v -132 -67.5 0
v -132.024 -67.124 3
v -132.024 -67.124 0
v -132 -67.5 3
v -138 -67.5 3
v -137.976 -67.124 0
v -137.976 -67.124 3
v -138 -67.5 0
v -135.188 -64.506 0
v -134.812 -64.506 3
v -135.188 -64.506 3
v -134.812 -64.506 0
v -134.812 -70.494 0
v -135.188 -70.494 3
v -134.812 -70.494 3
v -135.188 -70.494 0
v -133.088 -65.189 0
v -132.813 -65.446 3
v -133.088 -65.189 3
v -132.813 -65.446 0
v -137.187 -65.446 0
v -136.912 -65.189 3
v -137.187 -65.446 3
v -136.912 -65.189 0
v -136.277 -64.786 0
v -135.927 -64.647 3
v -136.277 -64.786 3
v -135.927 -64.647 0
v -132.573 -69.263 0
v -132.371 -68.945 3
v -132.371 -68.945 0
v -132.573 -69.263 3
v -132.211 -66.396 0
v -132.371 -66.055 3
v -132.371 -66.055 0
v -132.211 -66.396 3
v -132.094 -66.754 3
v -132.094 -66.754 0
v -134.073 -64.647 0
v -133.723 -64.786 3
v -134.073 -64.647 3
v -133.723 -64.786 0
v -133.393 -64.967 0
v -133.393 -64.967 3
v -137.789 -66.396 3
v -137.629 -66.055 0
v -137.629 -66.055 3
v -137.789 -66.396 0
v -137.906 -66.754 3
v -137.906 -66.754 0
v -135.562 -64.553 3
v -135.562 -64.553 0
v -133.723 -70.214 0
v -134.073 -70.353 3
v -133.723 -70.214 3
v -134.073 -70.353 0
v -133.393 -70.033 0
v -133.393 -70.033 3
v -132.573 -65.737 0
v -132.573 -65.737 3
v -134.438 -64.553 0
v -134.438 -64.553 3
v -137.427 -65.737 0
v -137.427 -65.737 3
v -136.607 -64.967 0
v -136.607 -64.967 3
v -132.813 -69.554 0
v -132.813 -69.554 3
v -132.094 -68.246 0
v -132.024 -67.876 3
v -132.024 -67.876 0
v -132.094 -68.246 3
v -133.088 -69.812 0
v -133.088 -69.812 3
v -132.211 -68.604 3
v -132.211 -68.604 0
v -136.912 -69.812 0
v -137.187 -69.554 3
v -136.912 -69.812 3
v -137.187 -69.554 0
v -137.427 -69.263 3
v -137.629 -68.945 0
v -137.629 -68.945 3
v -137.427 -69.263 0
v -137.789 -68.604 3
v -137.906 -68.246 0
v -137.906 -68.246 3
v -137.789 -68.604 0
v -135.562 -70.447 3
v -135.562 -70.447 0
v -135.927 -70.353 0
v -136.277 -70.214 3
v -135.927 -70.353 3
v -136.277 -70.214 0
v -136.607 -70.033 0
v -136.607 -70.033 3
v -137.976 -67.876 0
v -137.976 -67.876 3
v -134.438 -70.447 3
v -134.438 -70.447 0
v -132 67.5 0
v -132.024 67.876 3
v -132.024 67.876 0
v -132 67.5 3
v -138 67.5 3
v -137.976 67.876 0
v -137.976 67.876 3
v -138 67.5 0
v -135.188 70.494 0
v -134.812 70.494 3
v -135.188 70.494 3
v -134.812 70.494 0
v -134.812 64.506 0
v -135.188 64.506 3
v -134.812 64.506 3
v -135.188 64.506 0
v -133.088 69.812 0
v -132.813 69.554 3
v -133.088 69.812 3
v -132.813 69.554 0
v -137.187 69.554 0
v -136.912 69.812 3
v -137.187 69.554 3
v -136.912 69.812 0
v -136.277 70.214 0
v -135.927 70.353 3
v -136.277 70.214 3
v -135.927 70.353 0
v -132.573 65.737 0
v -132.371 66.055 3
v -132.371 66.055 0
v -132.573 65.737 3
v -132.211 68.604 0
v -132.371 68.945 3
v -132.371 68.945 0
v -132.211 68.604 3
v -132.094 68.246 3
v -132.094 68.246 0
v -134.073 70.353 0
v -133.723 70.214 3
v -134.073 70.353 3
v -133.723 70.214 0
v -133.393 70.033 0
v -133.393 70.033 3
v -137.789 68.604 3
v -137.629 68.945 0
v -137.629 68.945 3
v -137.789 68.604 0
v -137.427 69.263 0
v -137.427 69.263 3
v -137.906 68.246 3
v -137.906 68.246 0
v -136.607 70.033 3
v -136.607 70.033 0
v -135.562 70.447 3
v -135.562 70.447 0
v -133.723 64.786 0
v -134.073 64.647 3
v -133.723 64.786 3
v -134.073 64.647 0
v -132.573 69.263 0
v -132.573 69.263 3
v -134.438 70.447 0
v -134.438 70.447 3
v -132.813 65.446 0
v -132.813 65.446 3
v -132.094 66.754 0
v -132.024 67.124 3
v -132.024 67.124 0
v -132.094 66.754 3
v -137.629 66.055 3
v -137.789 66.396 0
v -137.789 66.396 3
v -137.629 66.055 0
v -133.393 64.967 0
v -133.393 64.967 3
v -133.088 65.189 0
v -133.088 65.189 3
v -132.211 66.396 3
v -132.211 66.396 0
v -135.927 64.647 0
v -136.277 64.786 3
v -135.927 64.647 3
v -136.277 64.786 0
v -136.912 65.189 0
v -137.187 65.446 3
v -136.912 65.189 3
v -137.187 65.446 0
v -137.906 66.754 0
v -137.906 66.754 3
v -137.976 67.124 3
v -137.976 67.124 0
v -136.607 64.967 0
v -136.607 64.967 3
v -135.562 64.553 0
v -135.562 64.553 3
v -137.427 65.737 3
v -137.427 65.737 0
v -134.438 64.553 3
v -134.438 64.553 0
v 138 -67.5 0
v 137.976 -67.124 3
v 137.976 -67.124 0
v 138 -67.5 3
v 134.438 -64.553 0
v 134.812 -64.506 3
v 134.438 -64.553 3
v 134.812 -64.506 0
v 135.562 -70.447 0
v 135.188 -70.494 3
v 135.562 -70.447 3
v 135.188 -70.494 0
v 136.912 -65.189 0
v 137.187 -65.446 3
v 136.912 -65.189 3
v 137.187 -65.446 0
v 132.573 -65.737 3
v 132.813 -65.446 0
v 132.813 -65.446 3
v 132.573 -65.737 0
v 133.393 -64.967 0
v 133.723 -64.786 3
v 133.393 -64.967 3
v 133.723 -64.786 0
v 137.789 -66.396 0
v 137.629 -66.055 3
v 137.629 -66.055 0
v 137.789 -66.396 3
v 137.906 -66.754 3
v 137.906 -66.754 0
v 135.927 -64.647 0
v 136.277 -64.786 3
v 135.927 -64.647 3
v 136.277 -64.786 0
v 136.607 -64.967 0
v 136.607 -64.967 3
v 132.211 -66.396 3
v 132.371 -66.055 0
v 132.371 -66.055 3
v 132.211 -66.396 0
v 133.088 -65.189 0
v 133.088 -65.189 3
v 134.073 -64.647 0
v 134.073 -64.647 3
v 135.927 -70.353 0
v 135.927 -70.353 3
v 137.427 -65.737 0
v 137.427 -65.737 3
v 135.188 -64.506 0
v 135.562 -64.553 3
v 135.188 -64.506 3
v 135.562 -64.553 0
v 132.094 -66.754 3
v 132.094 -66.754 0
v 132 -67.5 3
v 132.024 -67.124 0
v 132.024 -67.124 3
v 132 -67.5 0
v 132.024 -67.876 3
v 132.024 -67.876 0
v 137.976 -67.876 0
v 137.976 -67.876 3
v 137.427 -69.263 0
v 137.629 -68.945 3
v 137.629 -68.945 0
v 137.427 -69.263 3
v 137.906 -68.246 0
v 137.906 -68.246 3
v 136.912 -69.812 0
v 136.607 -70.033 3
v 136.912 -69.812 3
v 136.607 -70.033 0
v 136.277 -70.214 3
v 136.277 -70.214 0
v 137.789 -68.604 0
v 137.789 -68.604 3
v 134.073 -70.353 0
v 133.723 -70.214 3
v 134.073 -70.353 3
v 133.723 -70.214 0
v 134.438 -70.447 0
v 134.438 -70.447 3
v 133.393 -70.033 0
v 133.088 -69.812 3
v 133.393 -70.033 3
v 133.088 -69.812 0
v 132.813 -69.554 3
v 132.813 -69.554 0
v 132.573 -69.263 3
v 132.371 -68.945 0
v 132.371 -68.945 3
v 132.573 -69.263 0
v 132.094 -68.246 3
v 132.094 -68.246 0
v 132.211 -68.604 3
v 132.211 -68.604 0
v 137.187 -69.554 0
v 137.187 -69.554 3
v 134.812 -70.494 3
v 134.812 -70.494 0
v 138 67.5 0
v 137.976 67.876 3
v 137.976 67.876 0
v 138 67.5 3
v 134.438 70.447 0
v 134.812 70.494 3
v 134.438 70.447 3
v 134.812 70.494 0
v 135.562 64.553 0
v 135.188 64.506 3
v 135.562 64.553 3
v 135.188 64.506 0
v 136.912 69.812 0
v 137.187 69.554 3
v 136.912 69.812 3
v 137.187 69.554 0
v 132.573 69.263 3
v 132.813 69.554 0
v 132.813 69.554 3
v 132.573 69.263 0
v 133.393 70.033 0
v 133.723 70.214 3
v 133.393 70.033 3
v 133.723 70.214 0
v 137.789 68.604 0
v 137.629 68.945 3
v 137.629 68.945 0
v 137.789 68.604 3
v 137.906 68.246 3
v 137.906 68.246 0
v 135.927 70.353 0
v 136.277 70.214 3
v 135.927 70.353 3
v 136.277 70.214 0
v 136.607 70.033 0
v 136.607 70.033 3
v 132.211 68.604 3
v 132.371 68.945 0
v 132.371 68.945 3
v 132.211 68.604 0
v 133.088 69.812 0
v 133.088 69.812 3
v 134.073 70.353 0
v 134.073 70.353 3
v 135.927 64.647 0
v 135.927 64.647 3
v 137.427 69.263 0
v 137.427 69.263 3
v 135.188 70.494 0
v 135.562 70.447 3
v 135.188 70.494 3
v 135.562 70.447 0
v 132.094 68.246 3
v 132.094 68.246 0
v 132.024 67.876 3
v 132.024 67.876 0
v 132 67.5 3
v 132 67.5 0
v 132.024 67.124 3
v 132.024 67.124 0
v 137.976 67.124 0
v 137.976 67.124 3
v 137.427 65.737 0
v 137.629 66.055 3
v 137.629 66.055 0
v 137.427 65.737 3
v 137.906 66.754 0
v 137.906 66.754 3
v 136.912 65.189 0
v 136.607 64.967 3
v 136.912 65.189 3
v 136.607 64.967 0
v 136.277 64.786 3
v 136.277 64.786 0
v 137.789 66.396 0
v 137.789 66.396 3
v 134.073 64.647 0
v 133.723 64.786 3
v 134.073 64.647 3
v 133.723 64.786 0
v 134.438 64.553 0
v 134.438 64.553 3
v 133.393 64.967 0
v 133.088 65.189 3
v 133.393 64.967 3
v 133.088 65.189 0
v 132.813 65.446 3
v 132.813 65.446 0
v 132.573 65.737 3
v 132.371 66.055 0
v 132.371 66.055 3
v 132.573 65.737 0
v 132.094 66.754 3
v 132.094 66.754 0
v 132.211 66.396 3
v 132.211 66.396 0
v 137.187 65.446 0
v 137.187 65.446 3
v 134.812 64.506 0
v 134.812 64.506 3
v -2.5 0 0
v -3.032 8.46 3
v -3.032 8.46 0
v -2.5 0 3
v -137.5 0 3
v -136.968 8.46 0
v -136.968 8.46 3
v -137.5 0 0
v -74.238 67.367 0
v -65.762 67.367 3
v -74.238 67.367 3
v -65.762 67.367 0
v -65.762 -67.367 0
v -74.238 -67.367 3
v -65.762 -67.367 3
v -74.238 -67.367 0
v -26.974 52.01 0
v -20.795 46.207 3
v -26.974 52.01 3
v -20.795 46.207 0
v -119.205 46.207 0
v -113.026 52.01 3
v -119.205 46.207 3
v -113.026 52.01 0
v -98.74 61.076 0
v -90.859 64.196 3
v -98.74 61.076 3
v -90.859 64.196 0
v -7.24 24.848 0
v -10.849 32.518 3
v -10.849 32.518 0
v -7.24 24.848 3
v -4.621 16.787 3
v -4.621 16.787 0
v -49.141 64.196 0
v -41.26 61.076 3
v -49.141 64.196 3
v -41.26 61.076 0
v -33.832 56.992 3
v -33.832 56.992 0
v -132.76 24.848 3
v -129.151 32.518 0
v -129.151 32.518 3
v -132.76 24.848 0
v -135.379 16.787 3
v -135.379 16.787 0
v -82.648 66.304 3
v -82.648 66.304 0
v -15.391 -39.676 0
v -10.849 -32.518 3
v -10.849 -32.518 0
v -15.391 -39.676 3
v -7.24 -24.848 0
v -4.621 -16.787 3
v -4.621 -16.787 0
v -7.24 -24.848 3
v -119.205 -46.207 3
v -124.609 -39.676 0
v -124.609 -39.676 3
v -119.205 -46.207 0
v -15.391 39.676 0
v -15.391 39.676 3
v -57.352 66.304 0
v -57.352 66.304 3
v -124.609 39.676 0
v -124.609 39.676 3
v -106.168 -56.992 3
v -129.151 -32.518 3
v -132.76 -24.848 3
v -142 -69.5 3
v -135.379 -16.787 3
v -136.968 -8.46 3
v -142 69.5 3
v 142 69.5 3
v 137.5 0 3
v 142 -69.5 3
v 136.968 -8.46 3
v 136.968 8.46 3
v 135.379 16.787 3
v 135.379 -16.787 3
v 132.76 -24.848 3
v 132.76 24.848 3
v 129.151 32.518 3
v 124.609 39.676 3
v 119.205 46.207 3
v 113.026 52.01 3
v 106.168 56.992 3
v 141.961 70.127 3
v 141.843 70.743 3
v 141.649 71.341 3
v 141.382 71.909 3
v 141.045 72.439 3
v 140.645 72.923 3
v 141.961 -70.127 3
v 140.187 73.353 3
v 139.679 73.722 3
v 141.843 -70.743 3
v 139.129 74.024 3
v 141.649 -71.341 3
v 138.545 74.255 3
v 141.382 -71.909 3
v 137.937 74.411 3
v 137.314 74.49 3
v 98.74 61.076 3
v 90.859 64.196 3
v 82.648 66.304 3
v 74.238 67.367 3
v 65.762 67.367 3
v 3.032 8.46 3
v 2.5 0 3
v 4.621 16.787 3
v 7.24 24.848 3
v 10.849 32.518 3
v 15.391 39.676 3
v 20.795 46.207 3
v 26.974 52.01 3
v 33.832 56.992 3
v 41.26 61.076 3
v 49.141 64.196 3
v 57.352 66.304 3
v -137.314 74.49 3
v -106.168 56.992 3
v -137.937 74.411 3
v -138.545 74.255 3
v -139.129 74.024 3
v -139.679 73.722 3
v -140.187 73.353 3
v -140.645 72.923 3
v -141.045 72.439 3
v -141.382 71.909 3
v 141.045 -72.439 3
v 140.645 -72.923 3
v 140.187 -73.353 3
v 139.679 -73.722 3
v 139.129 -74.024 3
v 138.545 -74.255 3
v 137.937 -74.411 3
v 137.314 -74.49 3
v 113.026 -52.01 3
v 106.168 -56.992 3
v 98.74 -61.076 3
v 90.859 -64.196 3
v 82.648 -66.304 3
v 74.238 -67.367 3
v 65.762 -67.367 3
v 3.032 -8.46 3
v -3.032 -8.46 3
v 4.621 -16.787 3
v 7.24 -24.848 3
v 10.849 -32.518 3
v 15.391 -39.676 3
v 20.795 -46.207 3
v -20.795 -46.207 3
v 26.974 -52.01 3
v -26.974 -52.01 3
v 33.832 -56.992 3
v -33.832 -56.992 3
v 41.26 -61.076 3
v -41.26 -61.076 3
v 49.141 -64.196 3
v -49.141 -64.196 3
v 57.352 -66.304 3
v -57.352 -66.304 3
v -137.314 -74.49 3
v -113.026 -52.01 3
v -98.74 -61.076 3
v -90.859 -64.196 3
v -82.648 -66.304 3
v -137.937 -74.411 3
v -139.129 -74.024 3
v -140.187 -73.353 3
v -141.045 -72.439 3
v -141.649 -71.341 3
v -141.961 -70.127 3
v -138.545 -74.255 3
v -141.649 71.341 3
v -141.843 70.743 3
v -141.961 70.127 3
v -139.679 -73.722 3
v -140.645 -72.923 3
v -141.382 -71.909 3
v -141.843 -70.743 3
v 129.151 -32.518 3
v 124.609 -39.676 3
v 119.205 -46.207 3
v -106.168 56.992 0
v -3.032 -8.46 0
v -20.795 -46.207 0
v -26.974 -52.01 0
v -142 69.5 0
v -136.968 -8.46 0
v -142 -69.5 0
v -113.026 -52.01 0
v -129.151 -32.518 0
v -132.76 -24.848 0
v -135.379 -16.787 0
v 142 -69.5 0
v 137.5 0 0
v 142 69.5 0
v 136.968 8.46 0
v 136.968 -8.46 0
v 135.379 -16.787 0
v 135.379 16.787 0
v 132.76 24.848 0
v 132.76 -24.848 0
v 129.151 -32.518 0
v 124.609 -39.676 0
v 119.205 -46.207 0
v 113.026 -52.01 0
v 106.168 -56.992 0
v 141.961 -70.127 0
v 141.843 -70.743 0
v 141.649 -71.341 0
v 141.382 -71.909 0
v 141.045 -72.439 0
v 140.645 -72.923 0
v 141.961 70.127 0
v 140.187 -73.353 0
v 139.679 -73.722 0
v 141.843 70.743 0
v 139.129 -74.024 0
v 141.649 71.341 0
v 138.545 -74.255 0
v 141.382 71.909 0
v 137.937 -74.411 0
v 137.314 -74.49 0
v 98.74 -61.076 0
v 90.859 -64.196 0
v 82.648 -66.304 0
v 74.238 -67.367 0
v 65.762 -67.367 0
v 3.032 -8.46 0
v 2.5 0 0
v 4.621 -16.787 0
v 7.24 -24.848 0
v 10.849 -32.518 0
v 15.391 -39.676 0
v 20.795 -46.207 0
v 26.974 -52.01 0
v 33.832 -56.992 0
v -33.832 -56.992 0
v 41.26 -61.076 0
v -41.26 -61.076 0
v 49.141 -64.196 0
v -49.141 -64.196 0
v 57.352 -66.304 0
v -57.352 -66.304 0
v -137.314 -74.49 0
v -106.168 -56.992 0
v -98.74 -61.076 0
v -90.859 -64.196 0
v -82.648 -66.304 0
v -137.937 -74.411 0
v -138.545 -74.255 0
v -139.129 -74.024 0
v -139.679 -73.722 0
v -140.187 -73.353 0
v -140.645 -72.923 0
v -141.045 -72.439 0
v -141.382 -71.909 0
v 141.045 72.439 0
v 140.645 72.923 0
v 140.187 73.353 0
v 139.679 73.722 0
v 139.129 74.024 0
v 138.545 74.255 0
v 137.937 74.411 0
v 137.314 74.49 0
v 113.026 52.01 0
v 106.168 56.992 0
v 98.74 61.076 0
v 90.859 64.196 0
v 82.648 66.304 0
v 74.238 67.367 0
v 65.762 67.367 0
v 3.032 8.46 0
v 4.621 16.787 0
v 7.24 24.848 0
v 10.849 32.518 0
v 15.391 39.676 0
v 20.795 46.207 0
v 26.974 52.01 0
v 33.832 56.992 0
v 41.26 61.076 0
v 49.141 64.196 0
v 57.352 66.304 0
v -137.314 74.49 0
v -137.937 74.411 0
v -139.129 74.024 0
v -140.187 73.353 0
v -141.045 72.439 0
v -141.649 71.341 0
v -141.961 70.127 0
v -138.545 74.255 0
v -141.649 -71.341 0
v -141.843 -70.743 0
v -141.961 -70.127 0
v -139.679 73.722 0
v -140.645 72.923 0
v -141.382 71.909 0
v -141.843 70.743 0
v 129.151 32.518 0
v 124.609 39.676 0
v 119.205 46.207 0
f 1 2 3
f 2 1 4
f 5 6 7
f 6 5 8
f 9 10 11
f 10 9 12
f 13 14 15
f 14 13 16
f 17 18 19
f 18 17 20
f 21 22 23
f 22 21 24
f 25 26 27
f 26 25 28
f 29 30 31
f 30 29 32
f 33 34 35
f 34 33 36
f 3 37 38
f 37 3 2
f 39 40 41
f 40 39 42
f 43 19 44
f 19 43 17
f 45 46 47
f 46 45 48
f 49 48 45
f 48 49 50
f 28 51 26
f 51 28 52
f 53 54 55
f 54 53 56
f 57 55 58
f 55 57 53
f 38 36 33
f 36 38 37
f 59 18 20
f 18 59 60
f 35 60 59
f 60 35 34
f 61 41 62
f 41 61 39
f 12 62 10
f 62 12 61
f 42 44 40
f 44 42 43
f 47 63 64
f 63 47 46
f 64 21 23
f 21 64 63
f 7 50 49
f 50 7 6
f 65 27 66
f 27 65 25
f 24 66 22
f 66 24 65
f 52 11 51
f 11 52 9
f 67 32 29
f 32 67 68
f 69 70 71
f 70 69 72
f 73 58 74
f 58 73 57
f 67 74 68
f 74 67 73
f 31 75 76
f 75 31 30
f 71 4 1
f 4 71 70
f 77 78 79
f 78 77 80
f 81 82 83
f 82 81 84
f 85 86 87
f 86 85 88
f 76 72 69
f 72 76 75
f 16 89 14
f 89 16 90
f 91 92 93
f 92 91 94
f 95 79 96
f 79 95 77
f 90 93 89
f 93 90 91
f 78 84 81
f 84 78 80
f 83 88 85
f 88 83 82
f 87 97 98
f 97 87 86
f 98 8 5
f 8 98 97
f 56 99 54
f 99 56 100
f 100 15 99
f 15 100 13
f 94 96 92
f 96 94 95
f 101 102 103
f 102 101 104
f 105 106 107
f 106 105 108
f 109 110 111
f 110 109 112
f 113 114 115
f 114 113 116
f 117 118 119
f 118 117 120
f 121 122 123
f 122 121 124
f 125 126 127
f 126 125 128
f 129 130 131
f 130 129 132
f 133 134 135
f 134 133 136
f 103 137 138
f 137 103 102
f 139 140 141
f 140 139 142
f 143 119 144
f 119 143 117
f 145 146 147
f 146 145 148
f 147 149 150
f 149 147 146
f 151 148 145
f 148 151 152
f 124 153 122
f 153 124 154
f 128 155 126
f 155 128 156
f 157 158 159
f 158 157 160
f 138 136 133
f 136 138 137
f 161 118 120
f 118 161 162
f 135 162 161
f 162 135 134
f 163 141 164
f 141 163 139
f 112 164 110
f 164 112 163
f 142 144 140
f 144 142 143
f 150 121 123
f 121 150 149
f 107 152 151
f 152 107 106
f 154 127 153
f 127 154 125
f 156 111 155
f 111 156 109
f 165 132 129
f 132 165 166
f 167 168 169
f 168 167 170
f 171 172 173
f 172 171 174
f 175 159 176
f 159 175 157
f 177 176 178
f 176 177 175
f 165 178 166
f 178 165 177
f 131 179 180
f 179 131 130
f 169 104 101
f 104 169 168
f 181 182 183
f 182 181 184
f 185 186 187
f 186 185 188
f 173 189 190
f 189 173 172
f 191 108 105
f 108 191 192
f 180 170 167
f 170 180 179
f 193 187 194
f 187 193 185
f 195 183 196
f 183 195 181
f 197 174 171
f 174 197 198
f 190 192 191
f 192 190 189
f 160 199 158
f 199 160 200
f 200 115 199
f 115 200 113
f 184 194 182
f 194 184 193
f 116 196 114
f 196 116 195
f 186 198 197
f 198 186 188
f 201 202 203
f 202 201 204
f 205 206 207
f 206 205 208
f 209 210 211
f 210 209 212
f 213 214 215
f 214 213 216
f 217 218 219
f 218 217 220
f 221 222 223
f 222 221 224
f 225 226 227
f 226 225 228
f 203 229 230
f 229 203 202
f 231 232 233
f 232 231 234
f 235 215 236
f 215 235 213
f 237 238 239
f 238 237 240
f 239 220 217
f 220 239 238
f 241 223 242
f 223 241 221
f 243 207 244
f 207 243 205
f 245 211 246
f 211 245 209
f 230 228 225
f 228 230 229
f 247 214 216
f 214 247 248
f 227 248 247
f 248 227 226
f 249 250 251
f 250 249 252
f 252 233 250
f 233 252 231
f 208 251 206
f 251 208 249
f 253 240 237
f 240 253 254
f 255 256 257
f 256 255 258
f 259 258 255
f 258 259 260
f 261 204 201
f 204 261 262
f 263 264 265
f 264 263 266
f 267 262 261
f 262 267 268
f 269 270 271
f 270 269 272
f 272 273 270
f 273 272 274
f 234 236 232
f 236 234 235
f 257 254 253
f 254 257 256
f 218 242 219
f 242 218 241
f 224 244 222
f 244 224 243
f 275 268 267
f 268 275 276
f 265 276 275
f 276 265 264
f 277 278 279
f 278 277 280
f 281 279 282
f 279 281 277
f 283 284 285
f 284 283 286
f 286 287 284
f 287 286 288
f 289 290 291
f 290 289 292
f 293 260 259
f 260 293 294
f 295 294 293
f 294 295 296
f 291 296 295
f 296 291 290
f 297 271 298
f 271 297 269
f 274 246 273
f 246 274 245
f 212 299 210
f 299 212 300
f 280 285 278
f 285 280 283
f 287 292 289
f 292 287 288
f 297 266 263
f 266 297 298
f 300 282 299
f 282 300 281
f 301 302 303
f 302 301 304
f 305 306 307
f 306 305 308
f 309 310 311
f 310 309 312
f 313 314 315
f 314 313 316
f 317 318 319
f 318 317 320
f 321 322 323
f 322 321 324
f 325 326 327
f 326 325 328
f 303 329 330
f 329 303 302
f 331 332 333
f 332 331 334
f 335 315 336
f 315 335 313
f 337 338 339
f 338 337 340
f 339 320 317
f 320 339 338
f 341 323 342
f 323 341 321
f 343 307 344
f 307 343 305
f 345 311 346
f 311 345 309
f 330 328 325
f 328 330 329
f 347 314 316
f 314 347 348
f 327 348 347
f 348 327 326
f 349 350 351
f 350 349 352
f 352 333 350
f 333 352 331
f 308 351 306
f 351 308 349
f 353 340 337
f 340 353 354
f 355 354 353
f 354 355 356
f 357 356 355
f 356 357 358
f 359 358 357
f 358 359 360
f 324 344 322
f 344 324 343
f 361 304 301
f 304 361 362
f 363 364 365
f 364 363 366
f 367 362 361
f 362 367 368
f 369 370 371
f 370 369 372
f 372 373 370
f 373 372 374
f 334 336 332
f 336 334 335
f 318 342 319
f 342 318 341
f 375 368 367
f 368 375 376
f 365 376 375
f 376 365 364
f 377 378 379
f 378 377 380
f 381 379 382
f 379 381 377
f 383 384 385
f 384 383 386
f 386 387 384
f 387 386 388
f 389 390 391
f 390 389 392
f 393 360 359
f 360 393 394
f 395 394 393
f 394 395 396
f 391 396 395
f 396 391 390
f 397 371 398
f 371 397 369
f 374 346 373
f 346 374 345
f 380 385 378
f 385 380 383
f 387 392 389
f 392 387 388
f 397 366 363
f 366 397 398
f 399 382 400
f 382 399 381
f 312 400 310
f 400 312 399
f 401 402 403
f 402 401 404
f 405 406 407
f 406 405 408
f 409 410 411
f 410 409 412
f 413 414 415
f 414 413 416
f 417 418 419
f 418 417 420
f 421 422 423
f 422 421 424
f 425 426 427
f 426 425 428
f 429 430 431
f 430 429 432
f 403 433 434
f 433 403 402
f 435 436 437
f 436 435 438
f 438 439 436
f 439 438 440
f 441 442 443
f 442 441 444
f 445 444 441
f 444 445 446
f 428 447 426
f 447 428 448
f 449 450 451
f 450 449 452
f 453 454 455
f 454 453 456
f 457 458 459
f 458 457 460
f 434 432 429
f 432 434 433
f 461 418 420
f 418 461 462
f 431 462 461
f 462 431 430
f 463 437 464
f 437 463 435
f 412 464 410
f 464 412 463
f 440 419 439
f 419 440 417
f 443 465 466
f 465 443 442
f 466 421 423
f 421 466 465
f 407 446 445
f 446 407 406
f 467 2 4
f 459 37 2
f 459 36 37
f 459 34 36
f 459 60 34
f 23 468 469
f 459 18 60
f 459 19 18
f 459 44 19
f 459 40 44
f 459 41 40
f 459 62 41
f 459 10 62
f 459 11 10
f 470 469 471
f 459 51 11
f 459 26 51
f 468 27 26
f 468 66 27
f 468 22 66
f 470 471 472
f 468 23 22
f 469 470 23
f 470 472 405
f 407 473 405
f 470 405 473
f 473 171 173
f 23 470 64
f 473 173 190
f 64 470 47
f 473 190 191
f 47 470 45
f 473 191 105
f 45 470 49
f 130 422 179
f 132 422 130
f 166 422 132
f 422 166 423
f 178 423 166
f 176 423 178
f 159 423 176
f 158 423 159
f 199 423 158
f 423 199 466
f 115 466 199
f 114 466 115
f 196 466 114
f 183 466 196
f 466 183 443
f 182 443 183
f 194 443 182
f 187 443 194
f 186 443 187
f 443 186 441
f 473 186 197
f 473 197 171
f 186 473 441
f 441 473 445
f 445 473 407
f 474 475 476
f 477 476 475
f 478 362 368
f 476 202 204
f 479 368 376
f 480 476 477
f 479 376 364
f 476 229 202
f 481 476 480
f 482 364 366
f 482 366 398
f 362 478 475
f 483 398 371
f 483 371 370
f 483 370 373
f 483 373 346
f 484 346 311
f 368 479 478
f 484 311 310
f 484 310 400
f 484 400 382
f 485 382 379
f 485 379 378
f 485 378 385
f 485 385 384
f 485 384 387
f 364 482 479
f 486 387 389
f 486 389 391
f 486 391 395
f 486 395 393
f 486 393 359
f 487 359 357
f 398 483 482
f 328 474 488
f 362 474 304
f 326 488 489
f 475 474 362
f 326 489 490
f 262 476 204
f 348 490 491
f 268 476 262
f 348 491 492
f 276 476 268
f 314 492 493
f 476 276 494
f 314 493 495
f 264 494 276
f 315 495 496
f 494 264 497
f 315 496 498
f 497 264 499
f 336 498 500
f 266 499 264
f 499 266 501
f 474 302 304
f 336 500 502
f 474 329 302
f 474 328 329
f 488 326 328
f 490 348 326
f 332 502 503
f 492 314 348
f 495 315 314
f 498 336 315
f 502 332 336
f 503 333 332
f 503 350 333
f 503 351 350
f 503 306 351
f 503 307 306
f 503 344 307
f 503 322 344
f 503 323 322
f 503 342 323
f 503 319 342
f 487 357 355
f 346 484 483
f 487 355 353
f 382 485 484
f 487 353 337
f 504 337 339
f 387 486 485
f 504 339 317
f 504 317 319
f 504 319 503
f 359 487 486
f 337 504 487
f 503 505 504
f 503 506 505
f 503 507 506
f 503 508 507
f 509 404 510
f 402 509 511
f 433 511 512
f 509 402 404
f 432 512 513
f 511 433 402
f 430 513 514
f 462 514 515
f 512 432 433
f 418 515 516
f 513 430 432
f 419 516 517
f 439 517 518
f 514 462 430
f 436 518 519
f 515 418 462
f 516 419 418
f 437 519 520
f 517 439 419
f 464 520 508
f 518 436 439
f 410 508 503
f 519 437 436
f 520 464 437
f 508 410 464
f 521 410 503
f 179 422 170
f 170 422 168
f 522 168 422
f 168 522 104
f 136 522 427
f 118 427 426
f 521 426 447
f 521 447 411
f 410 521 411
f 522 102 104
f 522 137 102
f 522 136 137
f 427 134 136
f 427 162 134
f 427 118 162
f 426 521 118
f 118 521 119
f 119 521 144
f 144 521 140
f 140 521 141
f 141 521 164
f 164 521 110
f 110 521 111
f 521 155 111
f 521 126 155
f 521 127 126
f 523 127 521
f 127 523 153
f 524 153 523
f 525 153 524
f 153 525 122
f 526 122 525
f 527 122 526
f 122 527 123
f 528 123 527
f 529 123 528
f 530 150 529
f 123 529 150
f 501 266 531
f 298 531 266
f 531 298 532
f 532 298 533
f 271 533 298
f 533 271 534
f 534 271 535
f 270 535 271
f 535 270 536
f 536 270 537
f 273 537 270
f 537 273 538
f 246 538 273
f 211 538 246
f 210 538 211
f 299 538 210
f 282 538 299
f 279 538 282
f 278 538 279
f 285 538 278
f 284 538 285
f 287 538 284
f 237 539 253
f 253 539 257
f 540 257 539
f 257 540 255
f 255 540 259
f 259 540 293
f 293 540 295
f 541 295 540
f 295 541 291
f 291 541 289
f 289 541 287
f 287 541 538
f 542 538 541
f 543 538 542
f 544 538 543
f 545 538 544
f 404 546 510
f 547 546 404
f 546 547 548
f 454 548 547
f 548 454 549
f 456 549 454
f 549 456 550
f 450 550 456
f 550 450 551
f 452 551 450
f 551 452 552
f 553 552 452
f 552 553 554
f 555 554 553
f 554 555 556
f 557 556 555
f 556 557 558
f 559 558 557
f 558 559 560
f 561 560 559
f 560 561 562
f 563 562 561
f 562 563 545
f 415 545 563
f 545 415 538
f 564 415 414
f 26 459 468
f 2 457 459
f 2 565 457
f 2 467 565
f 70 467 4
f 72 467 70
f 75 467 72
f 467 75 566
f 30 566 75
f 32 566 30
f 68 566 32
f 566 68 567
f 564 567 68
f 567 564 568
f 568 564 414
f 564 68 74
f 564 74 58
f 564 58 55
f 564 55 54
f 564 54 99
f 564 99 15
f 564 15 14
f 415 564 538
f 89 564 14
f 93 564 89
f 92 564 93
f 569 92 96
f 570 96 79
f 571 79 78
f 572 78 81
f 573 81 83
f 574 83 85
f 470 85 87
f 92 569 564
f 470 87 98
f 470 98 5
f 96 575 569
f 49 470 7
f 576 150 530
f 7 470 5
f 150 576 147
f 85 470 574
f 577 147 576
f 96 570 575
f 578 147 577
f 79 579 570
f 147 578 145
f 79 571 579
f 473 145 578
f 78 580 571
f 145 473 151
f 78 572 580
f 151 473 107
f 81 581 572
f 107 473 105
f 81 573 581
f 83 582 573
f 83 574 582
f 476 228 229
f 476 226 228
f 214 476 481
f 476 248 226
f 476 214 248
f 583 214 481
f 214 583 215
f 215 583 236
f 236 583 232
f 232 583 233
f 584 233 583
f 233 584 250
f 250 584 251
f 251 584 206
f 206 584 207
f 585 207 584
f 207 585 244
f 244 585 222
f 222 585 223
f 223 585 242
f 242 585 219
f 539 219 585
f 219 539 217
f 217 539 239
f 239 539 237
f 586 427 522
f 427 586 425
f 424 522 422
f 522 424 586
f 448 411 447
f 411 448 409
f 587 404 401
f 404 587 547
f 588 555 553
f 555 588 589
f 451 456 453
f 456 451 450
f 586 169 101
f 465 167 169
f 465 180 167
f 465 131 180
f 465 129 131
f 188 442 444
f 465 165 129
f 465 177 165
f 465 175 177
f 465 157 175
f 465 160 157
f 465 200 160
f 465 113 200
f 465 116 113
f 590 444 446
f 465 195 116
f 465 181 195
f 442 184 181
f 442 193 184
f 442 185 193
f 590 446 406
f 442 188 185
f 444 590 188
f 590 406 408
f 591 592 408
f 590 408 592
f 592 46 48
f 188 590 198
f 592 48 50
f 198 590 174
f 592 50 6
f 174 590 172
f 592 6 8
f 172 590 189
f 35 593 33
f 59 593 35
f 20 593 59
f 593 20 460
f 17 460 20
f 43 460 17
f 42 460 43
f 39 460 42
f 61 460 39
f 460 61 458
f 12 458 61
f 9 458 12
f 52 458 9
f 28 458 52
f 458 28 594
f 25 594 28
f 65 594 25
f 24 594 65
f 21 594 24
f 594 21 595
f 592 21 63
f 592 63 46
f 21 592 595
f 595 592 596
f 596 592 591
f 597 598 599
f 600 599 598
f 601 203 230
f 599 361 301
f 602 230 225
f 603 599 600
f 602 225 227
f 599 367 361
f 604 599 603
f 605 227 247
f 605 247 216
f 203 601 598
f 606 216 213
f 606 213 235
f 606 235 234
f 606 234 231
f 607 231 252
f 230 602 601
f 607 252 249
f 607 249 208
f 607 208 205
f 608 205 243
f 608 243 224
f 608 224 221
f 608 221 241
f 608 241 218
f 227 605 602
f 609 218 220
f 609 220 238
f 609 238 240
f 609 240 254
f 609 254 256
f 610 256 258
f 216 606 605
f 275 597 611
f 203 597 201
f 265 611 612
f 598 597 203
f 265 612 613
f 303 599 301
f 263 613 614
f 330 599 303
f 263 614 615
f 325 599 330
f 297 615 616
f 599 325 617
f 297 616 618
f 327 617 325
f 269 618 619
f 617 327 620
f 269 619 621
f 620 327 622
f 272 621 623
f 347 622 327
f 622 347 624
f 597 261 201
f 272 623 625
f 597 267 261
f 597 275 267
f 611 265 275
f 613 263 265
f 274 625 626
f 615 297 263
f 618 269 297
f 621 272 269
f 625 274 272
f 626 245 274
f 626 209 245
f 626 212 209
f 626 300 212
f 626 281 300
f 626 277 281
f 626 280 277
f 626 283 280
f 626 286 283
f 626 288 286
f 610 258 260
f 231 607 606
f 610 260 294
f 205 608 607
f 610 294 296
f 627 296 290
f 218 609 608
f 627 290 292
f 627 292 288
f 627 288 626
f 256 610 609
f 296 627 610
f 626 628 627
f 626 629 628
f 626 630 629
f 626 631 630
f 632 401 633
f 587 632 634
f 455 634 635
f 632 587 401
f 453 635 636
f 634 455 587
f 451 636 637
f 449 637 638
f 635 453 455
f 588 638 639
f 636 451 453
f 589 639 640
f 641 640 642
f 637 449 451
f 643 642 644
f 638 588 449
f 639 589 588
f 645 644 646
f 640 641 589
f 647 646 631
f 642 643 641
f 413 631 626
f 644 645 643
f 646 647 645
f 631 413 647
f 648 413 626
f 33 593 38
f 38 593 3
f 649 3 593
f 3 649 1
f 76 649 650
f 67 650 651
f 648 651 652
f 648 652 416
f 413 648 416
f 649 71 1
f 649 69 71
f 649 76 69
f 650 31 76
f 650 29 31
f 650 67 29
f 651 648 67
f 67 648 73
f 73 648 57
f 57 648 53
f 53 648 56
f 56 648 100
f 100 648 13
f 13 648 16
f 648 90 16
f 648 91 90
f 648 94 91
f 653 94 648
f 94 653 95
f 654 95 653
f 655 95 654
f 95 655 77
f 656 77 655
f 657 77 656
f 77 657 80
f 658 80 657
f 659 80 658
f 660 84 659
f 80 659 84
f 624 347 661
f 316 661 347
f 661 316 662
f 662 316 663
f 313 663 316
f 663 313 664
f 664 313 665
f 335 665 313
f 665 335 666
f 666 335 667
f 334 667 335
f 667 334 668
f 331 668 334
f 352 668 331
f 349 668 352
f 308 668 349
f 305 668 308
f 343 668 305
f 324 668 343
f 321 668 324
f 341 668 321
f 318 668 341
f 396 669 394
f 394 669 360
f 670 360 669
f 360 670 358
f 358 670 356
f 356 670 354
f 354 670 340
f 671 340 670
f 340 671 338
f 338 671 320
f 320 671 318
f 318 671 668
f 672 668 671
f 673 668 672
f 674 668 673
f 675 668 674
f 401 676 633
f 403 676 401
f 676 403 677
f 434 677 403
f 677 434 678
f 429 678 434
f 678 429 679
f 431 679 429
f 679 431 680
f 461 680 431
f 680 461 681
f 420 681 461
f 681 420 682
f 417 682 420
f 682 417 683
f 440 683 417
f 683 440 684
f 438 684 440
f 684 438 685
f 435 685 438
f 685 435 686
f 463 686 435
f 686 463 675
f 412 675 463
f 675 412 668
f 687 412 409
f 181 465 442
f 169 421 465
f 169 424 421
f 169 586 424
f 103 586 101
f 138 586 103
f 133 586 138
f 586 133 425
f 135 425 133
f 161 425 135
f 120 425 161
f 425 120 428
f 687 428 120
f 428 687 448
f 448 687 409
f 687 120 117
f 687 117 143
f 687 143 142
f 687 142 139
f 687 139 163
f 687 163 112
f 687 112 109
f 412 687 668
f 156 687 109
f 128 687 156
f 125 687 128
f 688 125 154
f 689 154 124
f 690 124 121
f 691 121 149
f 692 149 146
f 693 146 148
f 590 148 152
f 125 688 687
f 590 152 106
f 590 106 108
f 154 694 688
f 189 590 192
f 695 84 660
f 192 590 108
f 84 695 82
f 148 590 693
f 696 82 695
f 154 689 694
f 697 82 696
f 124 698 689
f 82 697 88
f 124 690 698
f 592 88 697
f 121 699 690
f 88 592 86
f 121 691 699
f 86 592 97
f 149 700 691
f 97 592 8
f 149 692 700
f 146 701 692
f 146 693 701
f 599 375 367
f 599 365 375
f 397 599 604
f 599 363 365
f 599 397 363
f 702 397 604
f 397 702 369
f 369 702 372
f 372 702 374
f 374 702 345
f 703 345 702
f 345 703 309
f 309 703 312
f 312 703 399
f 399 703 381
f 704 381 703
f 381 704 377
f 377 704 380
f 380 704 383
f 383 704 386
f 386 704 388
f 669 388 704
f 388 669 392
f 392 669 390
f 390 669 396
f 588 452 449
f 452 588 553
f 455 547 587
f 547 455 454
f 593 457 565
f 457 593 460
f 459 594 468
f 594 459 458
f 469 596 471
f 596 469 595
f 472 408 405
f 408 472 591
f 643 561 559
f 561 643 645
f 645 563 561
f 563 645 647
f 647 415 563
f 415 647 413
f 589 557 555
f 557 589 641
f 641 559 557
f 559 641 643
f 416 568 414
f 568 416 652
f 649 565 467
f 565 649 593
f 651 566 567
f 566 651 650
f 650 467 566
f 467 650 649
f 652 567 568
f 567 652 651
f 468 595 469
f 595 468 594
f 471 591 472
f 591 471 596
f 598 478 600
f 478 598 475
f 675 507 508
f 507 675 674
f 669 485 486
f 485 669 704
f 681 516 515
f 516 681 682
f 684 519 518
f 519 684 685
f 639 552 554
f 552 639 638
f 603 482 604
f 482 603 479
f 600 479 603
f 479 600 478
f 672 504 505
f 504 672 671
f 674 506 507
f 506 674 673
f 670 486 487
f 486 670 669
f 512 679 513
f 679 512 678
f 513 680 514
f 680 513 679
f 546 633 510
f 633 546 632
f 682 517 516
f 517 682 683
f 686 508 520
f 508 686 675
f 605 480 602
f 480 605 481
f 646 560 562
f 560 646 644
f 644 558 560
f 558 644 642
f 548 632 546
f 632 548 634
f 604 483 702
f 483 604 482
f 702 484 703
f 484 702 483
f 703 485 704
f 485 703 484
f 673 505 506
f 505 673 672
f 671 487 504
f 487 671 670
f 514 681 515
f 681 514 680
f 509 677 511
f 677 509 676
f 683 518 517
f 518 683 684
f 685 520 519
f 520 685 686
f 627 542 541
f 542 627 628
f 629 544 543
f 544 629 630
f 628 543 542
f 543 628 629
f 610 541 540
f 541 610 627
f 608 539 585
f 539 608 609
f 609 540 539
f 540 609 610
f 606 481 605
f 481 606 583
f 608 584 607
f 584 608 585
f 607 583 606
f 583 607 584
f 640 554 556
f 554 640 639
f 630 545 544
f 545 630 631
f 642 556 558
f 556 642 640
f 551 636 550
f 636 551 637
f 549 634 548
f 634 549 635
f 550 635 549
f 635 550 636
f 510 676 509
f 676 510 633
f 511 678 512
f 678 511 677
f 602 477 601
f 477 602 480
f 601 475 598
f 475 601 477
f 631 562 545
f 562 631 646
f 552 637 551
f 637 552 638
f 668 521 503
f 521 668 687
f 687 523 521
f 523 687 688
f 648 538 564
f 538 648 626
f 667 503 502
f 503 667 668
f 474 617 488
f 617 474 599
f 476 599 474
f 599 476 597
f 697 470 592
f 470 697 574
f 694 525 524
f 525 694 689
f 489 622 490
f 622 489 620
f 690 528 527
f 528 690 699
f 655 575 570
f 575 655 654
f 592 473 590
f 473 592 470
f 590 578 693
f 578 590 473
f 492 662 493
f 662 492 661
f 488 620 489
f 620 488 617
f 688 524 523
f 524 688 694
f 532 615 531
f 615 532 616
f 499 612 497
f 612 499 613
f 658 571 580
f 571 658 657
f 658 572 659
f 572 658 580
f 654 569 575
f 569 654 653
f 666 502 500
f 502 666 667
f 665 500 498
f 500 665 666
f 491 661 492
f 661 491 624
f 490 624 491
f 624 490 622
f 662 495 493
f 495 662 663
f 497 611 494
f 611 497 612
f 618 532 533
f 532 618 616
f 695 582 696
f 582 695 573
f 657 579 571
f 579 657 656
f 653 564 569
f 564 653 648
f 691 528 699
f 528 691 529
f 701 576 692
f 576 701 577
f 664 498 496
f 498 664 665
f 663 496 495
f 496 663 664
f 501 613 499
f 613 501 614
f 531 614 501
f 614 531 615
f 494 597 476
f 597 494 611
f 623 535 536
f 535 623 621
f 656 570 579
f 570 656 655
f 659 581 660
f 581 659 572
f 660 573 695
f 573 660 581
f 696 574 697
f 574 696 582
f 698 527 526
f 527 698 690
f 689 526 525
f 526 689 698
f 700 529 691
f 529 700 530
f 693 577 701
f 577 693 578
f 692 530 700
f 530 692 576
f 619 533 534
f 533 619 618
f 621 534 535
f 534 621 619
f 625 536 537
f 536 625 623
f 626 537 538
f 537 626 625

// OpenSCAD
$fn = 50;


difference() {
	union() {
		hull() {
			translate(v = [-137.0000000000, 69.5000000000, 0]) {
				cylinder(h = 3, r = 5);
			}
			translate(v = [137.0000000000, 69.5000000000, 0]) {
				cylinder(h = 3, r = 5);
			}
			translate(v = [-137.0000000000, -69.5000000000, 0]) {
				cylinder(h = 3, r = 5);
			}
			translate(v = [137.0000000000, -69.5000000000, 0]) {
				cylinder(h = 3, r = 5);
			}
		}
	}
	union() {
		#translate(v = [-135.0000000000, -67.5000000000, -100.0000000000]) {
			cylinder(h = 200, r = 3.0000000000);
		}
		#translate(v = [-135.0000000000, 67.5000000000, -100.0000000000]) {
			cylinder(h = 200, r = 3.0000000000);
		}
		#translate(v = [135.0000000000, -67.5000000000, -100.0000000000]) {
			cylinder(h = 200, r = 3.0000000000);
		}
		#translate(v = [135.0000000000, 67.5000000000, -100.0000000000]) {
			cylinder(h = 200, r = 3.0000000000);
		}
		#translate(v = [-70.0000000000, 0, 0]) {
			cylinder(h = 3, r = 67.5000000000);
		}
		#translate(v = [70.0000000000, 0, 0]) {
			cylinder(h = 3, r = 67.5000000000);
		}
	}
}
